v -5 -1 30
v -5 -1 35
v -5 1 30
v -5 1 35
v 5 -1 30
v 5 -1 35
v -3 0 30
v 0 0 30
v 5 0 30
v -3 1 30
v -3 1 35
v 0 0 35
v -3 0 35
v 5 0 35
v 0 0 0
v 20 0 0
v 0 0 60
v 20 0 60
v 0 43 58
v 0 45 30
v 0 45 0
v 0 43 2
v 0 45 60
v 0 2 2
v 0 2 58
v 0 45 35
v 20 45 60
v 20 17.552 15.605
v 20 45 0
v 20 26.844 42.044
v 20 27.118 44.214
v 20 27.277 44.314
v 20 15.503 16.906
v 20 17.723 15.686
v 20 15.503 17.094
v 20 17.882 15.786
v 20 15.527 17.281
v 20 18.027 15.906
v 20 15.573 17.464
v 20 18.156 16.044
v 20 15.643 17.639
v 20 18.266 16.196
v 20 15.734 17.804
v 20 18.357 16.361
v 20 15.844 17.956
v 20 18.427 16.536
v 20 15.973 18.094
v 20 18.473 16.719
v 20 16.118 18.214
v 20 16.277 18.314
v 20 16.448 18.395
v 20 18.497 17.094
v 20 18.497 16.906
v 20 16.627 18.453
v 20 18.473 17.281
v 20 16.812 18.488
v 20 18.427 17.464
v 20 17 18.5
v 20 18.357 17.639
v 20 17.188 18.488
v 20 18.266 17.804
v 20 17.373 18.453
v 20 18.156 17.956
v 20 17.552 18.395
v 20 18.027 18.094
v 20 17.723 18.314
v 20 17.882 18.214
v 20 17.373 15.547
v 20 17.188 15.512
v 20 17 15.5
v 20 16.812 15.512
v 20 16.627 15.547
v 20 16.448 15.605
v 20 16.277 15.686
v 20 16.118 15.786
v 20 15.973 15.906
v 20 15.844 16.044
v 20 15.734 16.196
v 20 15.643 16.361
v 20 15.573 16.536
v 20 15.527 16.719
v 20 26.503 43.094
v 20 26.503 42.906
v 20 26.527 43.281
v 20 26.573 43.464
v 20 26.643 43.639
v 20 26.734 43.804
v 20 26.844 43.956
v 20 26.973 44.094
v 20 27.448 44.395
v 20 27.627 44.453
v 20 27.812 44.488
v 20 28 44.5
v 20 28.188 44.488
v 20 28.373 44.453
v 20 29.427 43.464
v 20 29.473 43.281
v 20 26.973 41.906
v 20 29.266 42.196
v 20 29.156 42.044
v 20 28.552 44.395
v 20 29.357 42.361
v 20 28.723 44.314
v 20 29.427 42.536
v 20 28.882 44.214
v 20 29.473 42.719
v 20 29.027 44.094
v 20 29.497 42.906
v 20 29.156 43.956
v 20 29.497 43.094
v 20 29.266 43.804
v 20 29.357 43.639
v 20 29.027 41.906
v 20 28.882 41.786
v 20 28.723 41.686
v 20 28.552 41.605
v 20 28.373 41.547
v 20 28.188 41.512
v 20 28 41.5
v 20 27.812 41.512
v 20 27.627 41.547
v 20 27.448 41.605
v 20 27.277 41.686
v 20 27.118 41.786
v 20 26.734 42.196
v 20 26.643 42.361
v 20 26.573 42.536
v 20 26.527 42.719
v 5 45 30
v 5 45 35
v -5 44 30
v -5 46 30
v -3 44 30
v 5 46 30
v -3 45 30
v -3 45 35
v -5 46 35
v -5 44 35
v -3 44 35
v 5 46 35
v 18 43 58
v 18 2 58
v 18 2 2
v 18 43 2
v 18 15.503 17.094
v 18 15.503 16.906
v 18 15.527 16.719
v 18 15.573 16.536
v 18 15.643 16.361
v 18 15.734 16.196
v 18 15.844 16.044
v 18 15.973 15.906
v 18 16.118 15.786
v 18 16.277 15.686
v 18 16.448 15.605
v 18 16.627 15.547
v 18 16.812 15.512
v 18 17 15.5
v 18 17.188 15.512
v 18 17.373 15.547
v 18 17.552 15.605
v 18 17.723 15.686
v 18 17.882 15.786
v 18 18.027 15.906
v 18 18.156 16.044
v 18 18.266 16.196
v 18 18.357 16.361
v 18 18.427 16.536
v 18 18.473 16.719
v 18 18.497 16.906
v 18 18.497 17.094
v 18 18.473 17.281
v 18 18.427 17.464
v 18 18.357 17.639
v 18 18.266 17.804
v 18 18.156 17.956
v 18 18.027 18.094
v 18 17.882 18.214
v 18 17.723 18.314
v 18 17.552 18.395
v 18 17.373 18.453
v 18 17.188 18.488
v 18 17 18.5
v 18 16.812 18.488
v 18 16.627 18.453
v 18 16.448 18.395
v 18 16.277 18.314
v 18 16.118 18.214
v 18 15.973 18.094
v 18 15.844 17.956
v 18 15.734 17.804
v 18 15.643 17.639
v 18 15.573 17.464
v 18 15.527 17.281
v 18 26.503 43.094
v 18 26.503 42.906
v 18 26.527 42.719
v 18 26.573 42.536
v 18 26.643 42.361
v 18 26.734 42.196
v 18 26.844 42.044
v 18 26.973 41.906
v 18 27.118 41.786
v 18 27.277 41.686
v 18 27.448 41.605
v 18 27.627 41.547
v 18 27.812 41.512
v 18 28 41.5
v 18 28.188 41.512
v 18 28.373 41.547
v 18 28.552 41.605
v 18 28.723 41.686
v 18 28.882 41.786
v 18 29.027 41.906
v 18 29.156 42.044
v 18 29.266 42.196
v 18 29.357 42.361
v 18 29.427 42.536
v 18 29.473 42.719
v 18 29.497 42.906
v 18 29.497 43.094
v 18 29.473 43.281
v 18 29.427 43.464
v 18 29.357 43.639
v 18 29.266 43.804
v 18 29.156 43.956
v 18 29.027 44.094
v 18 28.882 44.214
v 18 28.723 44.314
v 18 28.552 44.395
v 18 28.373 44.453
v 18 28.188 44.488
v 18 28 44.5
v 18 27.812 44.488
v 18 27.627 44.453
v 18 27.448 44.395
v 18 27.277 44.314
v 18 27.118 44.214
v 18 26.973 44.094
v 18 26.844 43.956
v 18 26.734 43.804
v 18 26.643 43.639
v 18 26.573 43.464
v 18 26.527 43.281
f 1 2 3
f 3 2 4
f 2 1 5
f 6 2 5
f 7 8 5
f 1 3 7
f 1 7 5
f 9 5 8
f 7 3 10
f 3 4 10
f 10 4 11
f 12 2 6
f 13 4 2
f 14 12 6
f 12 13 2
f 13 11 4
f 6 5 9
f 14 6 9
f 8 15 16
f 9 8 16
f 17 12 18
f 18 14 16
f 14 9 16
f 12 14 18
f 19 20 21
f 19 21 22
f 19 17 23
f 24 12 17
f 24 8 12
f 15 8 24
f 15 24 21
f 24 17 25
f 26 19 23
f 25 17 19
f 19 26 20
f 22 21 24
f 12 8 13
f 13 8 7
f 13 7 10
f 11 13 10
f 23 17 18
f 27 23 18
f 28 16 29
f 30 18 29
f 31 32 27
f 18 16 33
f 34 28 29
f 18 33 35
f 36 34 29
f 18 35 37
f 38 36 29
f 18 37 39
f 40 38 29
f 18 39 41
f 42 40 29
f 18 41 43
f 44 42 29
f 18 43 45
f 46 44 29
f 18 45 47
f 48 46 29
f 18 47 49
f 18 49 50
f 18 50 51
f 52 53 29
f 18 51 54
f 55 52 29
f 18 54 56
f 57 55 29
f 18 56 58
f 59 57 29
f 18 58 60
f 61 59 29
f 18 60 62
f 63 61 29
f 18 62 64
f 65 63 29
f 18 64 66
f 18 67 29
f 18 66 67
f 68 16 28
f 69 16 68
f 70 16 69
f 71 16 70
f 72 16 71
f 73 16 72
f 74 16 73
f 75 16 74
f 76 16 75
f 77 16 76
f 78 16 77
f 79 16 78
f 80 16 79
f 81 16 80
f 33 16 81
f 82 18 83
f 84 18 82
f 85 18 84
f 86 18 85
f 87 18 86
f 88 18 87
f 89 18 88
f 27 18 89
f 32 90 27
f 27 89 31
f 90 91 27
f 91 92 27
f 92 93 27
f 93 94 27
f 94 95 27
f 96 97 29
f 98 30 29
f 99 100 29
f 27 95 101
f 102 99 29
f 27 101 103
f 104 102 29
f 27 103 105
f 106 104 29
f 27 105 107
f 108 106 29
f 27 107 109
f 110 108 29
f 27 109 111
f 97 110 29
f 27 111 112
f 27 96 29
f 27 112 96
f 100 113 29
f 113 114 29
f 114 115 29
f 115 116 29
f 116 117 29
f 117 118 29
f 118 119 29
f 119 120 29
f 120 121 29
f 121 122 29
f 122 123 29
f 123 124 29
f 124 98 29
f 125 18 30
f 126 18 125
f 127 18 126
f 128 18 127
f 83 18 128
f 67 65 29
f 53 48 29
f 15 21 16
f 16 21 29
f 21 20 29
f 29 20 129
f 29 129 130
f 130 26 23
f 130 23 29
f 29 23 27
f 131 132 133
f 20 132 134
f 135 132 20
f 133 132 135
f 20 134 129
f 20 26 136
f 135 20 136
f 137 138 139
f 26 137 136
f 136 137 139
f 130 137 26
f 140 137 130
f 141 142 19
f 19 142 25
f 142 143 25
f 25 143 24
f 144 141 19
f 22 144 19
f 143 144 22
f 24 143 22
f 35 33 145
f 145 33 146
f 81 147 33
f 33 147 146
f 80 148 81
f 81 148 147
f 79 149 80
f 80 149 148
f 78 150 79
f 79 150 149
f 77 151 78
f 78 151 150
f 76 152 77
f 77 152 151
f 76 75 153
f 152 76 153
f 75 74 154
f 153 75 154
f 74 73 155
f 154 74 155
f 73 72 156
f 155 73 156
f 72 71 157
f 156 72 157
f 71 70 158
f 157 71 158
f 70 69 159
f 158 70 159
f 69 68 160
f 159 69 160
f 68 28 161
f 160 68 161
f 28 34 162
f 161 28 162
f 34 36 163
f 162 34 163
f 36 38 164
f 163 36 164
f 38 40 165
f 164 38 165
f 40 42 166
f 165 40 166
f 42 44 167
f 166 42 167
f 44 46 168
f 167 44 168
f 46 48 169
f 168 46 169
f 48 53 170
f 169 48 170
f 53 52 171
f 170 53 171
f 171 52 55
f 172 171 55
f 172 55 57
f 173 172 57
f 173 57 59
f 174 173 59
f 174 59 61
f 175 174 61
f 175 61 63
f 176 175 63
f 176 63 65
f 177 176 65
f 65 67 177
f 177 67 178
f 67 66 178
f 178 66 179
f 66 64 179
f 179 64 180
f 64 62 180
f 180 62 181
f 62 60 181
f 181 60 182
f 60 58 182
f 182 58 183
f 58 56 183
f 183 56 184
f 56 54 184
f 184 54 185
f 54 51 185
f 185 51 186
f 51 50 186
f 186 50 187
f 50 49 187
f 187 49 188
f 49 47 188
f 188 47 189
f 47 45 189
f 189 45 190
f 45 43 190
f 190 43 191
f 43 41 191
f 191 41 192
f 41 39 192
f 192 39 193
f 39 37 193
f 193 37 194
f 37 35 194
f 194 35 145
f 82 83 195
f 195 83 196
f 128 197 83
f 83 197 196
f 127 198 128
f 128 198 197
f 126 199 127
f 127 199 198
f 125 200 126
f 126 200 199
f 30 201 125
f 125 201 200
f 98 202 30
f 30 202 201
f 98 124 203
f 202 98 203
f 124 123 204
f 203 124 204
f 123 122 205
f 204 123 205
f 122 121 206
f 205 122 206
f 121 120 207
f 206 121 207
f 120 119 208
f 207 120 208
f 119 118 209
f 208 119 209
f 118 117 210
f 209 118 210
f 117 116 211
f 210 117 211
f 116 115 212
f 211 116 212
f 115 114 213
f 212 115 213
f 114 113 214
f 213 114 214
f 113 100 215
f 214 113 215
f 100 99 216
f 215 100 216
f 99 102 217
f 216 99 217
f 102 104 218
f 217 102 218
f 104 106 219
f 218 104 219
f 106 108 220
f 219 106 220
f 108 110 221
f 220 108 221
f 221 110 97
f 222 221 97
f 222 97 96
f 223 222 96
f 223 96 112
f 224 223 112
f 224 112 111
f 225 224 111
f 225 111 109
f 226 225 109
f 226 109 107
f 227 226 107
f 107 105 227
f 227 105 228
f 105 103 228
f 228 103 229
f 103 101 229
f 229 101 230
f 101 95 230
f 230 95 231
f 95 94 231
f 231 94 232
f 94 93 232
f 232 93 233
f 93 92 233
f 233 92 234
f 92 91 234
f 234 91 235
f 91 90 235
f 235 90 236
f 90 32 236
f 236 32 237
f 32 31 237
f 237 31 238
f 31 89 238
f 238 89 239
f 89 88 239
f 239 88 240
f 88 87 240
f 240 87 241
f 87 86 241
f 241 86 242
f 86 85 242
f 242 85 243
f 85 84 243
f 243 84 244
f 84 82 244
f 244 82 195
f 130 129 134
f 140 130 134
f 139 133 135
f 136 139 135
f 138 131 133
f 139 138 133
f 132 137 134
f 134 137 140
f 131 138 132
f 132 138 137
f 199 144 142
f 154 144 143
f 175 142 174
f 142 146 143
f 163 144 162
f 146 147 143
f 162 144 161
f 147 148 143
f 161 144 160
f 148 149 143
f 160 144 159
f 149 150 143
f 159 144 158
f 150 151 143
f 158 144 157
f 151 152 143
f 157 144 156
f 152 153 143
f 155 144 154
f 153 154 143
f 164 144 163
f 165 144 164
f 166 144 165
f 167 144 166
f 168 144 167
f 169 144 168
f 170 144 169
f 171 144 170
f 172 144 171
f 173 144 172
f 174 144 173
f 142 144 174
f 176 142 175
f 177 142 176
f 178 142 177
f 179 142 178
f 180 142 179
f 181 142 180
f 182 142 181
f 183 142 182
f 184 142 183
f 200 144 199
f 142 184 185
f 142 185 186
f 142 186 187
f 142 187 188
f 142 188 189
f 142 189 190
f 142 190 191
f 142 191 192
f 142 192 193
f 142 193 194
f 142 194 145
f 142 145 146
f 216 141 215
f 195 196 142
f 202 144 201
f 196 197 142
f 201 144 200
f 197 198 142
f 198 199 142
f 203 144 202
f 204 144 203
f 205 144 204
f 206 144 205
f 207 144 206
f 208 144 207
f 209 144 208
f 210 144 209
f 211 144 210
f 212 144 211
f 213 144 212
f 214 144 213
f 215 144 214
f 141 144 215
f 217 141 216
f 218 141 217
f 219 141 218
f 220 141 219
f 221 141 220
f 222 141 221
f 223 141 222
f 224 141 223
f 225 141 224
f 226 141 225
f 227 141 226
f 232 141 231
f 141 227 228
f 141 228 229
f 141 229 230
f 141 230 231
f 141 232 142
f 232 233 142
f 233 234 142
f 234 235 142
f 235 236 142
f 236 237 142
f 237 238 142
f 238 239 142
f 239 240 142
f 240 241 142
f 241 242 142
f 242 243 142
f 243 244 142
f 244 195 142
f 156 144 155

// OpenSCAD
// Parameters

// Main box
w = 45;
l = 60;
h = 20;
thickness = 2; 

// Holes
fixation_hole_r = 1.5;
cylinder_resolution = 50;
distance_from_edges = 15;

// Attach
attach_l = h/2;
attach_w = 5;
attach_h = 1;
attach_clip_h = 1;
attach_clip_l = 2;

// Back box
difference(){

	difference(){
		cube([h,w,l]);
		translate([-thickness,thickness,thickness]) {
  			cube([h,w-2*thickness,l-2*thickness]);
		}
	}

	translate([0,distance_from_edges+thickness,distance_from_edges+thickness]) {
		rotate([0,90,0]){
			cylinder(h = 30, r=fixation_hole_r, $fn=cylinder_resolution);
		} 
	}

	translate([0,w-distance_from_edges-thickness,l-distance_from_edges-thickness]) {
		rotate([0,90,0]){
			cylinder(h = 30, r=fixation_hole_r, $fn=cylinder_resolution);
		} 
	}

}

// Attach
translate([-attach_l/2,-attach_h,l/2]) cube([attach_l,attach_h,attach_w]);
translate([-attach_l/2,0,l/2]) cube([attach_clip_l,attach_clip_h,attach_w]);

translate([-attach_l/2,w,l/2]) cube([attach_l,attach_h,attach_w]);
translate([-attach_l/2,w-attach_h,l/2]) cube([attach_clip_l,attach_clip_h,attach_w]);
